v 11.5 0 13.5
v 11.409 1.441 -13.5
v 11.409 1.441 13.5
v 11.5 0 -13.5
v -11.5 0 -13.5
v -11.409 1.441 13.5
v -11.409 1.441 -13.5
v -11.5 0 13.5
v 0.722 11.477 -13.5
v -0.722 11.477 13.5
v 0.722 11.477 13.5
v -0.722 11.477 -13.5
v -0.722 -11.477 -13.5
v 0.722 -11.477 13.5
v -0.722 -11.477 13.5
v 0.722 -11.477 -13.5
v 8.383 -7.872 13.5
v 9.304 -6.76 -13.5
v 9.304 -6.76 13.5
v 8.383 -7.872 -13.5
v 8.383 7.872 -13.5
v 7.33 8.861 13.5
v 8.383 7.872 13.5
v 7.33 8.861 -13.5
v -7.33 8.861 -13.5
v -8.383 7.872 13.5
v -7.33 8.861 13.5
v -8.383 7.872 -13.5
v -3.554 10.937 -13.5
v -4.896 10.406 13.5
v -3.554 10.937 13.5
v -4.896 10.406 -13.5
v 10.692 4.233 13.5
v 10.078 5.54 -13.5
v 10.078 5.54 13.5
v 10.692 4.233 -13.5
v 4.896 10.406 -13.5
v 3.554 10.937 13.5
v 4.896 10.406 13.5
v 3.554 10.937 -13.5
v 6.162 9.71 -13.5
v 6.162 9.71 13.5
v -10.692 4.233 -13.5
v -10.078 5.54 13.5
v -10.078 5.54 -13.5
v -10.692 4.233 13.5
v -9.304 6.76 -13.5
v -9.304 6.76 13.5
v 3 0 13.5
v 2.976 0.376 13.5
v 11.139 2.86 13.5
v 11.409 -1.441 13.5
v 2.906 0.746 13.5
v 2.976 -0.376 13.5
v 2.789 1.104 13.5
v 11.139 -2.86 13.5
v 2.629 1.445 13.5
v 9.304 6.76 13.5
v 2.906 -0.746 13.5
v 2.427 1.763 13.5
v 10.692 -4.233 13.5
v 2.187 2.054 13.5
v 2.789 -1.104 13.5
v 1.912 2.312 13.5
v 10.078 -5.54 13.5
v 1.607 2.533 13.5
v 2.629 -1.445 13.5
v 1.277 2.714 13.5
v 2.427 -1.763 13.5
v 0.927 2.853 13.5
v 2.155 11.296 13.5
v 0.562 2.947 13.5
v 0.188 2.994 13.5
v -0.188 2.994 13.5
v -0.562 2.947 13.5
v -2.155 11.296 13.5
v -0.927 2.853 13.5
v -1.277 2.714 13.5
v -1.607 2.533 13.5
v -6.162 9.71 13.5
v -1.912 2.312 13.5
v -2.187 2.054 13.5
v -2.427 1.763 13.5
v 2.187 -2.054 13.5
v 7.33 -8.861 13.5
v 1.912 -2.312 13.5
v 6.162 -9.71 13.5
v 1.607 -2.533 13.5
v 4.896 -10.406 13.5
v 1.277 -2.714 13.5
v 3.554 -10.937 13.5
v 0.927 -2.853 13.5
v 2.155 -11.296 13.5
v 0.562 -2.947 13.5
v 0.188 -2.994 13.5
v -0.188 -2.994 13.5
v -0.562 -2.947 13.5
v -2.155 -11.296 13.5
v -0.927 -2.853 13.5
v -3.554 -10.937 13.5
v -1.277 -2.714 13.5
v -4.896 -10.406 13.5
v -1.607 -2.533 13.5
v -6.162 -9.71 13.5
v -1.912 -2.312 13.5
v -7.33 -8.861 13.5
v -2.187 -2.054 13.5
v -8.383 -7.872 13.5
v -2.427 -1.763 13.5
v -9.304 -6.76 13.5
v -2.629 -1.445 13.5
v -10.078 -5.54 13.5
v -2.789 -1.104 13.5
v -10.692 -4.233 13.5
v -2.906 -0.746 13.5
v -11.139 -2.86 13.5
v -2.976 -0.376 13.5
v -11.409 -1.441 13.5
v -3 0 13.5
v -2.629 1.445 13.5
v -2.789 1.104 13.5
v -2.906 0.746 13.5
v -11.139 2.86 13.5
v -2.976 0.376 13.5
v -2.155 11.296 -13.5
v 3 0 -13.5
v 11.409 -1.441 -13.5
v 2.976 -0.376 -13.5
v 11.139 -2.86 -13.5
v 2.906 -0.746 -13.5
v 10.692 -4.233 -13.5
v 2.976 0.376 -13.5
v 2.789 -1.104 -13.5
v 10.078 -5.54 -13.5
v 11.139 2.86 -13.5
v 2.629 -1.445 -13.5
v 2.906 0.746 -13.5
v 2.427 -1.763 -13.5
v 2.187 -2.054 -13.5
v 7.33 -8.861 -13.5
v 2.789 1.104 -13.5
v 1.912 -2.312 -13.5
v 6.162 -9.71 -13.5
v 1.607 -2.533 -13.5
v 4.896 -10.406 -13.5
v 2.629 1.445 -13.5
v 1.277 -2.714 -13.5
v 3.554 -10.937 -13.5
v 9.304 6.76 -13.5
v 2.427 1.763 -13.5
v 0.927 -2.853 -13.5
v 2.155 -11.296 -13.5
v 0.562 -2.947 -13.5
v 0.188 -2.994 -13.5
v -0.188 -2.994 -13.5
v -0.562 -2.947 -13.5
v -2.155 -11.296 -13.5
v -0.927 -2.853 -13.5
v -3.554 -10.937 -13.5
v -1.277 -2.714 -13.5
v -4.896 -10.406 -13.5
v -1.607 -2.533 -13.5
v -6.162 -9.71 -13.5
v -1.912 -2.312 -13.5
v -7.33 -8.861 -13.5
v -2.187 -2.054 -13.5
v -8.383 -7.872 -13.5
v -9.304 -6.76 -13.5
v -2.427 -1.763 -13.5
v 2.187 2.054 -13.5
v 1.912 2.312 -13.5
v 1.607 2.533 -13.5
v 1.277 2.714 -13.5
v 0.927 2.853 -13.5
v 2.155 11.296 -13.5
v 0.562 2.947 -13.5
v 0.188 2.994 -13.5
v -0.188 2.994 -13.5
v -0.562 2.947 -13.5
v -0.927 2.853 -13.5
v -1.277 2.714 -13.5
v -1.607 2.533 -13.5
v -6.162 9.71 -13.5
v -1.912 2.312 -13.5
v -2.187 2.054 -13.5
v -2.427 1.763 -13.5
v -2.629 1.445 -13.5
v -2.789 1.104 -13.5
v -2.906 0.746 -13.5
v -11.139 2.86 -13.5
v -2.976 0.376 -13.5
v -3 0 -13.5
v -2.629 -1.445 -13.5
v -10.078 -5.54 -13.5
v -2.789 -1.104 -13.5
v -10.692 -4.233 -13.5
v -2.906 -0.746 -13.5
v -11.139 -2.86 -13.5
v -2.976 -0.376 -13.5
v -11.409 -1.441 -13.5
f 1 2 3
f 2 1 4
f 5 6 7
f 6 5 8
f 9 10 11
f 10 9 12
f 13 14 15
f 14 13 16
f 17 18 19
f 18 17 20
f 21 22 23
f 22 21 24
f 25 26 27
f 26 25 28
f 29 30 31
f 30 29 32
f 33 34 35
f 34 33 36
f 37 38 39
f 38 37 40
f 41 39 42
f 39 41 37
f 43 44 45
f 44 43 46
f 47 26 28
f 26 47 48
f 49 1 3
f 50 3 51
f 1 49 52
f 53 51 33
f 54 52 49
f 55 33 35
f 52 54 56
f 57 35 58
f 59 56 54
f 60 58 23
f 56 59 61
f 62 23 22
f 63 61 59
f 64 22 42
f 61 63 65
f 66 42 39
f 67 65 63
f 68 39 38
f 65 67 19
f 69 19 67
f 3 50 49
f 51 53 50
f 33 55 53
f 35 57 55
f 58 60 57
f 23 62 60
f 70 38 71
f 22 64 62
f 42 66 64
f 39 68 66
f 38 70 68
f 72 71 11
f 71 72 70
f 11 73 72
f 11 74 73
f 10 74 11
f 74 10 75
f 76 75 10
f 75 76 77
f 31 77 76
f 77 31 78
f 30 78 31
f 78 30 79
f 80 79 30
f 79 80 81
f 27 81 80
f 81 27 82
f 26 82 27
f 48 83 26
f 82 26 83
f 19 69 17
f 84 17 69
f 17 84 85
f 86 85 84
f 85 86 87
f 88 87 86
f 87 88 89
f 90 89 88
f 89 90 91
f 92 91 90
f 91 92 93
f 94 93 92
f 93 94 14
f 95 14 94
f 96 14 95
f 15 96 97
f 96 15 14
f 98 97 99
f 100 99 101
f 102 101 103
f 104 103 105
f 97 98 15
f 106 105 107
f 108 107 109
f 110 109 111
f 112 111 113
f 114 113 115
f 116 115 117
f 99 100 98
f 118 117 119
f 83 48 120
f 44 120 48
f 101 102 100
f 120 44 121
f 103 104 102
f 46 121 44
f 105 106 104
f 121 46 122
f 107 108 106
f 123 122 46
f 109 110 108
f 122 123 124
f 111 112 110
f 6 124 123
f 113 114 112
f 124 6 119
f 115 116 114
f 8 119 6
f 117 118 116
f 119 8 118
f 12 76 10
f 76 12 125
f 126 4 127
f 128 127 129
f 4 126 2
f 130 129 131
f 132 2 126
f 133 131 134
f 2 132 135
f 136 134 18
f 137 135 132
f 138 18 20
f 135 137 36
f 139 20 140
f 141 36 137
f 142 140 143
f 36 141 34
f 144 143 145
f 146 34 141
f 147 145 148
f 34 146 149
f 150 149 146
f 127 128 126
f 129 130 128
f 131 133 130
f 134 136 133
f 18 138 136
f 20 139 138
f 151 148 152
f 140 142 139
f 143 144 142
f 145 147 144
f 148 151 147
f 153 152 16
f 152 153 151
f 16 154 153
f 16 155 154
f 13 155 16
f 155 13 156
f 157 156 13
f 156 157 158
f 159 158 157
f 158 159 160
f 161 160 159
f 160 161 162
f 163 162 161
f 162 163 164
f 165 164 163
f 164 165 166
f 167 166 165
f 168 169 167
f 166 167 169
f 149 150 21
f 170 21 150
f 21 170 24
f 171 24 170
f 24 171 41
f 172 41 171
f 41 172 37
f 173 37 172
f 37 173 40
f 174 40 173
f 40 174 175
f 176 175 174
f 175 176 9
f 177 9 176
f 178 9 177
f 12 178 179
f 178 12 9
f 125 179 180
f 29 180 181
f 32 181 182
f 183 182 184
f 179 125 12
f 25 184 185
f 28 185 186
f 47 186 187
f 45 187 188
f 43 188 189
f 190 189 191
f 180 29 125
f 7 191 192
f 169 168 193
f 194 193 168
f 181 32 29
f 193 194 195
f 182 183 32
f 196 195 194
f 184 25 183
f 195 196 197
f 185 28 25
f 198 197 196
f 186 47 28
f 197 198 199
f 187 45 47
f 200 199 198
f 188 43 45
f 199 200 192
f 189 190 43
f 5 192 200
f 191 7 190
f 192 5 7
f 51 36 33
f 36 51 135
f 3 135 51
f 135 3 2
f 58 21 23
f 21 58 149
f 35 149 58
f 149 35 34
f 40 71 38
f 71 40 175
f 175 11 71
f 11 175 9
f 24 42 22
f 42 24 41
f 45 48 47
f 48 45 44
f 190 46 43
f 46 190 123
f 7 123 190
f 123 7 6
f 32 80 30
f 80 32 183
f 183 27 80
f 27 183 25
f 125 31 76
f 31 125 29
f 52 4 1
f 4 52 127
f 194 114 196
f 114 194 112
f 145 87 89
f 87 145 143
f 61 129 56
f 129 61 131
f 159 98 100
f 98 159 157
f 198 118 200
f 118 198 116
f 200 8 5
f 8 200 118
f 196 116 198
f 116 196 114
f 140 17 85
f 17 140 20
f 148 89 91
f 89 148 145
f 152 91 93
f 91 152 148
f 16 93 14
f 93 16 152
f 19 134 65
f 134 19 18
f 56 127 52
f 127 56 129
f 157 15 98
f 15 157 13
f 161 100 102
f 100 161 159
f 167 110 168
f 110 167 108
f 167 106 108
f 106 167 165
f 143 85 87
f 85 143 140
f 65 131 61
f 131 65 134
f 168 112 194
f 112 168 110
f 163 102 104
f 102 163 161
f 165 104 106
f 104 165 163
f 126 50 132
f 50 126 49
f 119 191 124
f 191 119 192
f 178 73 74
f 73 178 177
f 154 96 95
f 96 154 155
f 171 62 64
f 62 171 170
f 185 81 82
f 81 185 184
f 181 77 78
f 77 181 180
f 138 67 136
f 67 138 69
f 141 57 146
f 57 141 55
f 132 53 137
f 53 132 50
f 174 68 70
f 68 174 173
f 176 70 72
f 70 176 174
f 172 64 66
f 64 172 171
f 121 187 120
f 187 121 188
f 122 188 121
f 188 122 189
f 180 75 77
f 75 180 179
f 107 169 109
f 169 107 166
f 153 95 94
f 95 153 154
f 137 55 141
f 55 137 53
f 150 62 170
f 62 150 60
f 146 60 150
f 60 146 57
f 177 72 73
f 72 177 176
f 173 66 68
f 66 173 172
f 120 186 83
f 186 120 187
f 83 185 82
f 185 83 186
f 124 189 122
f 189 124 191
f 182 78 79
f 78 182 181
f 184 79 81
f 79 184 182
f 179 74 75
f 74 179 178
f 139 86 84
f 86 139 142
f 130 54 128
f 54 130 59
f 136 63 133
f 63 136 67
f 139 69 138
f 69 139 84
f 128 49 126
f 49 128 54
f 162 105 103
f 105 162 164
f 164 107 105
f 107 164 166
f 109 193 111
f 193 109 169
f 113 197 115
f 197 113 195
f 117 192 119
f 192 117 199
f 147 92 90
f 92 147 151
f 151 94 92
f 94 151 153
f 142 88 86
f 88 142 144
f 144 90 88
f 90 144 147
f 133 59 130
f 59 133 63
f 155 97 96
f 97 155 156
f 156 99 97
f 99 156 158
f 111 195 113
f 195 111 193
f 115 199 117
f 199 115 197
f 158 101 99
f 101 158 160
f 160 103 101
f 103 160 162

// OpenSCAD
$fn = 50;


difference() {
	union() {
		translate(v = [0, 0, -13.5000000000]) {
			cylinder(h = 27, r = 11.5000000000);
		}
	}
	union() {
		translate(v = [0, 0, -100.0000000000]) {
			cylinder(h = 200, r = 3);
		}
	}
}
